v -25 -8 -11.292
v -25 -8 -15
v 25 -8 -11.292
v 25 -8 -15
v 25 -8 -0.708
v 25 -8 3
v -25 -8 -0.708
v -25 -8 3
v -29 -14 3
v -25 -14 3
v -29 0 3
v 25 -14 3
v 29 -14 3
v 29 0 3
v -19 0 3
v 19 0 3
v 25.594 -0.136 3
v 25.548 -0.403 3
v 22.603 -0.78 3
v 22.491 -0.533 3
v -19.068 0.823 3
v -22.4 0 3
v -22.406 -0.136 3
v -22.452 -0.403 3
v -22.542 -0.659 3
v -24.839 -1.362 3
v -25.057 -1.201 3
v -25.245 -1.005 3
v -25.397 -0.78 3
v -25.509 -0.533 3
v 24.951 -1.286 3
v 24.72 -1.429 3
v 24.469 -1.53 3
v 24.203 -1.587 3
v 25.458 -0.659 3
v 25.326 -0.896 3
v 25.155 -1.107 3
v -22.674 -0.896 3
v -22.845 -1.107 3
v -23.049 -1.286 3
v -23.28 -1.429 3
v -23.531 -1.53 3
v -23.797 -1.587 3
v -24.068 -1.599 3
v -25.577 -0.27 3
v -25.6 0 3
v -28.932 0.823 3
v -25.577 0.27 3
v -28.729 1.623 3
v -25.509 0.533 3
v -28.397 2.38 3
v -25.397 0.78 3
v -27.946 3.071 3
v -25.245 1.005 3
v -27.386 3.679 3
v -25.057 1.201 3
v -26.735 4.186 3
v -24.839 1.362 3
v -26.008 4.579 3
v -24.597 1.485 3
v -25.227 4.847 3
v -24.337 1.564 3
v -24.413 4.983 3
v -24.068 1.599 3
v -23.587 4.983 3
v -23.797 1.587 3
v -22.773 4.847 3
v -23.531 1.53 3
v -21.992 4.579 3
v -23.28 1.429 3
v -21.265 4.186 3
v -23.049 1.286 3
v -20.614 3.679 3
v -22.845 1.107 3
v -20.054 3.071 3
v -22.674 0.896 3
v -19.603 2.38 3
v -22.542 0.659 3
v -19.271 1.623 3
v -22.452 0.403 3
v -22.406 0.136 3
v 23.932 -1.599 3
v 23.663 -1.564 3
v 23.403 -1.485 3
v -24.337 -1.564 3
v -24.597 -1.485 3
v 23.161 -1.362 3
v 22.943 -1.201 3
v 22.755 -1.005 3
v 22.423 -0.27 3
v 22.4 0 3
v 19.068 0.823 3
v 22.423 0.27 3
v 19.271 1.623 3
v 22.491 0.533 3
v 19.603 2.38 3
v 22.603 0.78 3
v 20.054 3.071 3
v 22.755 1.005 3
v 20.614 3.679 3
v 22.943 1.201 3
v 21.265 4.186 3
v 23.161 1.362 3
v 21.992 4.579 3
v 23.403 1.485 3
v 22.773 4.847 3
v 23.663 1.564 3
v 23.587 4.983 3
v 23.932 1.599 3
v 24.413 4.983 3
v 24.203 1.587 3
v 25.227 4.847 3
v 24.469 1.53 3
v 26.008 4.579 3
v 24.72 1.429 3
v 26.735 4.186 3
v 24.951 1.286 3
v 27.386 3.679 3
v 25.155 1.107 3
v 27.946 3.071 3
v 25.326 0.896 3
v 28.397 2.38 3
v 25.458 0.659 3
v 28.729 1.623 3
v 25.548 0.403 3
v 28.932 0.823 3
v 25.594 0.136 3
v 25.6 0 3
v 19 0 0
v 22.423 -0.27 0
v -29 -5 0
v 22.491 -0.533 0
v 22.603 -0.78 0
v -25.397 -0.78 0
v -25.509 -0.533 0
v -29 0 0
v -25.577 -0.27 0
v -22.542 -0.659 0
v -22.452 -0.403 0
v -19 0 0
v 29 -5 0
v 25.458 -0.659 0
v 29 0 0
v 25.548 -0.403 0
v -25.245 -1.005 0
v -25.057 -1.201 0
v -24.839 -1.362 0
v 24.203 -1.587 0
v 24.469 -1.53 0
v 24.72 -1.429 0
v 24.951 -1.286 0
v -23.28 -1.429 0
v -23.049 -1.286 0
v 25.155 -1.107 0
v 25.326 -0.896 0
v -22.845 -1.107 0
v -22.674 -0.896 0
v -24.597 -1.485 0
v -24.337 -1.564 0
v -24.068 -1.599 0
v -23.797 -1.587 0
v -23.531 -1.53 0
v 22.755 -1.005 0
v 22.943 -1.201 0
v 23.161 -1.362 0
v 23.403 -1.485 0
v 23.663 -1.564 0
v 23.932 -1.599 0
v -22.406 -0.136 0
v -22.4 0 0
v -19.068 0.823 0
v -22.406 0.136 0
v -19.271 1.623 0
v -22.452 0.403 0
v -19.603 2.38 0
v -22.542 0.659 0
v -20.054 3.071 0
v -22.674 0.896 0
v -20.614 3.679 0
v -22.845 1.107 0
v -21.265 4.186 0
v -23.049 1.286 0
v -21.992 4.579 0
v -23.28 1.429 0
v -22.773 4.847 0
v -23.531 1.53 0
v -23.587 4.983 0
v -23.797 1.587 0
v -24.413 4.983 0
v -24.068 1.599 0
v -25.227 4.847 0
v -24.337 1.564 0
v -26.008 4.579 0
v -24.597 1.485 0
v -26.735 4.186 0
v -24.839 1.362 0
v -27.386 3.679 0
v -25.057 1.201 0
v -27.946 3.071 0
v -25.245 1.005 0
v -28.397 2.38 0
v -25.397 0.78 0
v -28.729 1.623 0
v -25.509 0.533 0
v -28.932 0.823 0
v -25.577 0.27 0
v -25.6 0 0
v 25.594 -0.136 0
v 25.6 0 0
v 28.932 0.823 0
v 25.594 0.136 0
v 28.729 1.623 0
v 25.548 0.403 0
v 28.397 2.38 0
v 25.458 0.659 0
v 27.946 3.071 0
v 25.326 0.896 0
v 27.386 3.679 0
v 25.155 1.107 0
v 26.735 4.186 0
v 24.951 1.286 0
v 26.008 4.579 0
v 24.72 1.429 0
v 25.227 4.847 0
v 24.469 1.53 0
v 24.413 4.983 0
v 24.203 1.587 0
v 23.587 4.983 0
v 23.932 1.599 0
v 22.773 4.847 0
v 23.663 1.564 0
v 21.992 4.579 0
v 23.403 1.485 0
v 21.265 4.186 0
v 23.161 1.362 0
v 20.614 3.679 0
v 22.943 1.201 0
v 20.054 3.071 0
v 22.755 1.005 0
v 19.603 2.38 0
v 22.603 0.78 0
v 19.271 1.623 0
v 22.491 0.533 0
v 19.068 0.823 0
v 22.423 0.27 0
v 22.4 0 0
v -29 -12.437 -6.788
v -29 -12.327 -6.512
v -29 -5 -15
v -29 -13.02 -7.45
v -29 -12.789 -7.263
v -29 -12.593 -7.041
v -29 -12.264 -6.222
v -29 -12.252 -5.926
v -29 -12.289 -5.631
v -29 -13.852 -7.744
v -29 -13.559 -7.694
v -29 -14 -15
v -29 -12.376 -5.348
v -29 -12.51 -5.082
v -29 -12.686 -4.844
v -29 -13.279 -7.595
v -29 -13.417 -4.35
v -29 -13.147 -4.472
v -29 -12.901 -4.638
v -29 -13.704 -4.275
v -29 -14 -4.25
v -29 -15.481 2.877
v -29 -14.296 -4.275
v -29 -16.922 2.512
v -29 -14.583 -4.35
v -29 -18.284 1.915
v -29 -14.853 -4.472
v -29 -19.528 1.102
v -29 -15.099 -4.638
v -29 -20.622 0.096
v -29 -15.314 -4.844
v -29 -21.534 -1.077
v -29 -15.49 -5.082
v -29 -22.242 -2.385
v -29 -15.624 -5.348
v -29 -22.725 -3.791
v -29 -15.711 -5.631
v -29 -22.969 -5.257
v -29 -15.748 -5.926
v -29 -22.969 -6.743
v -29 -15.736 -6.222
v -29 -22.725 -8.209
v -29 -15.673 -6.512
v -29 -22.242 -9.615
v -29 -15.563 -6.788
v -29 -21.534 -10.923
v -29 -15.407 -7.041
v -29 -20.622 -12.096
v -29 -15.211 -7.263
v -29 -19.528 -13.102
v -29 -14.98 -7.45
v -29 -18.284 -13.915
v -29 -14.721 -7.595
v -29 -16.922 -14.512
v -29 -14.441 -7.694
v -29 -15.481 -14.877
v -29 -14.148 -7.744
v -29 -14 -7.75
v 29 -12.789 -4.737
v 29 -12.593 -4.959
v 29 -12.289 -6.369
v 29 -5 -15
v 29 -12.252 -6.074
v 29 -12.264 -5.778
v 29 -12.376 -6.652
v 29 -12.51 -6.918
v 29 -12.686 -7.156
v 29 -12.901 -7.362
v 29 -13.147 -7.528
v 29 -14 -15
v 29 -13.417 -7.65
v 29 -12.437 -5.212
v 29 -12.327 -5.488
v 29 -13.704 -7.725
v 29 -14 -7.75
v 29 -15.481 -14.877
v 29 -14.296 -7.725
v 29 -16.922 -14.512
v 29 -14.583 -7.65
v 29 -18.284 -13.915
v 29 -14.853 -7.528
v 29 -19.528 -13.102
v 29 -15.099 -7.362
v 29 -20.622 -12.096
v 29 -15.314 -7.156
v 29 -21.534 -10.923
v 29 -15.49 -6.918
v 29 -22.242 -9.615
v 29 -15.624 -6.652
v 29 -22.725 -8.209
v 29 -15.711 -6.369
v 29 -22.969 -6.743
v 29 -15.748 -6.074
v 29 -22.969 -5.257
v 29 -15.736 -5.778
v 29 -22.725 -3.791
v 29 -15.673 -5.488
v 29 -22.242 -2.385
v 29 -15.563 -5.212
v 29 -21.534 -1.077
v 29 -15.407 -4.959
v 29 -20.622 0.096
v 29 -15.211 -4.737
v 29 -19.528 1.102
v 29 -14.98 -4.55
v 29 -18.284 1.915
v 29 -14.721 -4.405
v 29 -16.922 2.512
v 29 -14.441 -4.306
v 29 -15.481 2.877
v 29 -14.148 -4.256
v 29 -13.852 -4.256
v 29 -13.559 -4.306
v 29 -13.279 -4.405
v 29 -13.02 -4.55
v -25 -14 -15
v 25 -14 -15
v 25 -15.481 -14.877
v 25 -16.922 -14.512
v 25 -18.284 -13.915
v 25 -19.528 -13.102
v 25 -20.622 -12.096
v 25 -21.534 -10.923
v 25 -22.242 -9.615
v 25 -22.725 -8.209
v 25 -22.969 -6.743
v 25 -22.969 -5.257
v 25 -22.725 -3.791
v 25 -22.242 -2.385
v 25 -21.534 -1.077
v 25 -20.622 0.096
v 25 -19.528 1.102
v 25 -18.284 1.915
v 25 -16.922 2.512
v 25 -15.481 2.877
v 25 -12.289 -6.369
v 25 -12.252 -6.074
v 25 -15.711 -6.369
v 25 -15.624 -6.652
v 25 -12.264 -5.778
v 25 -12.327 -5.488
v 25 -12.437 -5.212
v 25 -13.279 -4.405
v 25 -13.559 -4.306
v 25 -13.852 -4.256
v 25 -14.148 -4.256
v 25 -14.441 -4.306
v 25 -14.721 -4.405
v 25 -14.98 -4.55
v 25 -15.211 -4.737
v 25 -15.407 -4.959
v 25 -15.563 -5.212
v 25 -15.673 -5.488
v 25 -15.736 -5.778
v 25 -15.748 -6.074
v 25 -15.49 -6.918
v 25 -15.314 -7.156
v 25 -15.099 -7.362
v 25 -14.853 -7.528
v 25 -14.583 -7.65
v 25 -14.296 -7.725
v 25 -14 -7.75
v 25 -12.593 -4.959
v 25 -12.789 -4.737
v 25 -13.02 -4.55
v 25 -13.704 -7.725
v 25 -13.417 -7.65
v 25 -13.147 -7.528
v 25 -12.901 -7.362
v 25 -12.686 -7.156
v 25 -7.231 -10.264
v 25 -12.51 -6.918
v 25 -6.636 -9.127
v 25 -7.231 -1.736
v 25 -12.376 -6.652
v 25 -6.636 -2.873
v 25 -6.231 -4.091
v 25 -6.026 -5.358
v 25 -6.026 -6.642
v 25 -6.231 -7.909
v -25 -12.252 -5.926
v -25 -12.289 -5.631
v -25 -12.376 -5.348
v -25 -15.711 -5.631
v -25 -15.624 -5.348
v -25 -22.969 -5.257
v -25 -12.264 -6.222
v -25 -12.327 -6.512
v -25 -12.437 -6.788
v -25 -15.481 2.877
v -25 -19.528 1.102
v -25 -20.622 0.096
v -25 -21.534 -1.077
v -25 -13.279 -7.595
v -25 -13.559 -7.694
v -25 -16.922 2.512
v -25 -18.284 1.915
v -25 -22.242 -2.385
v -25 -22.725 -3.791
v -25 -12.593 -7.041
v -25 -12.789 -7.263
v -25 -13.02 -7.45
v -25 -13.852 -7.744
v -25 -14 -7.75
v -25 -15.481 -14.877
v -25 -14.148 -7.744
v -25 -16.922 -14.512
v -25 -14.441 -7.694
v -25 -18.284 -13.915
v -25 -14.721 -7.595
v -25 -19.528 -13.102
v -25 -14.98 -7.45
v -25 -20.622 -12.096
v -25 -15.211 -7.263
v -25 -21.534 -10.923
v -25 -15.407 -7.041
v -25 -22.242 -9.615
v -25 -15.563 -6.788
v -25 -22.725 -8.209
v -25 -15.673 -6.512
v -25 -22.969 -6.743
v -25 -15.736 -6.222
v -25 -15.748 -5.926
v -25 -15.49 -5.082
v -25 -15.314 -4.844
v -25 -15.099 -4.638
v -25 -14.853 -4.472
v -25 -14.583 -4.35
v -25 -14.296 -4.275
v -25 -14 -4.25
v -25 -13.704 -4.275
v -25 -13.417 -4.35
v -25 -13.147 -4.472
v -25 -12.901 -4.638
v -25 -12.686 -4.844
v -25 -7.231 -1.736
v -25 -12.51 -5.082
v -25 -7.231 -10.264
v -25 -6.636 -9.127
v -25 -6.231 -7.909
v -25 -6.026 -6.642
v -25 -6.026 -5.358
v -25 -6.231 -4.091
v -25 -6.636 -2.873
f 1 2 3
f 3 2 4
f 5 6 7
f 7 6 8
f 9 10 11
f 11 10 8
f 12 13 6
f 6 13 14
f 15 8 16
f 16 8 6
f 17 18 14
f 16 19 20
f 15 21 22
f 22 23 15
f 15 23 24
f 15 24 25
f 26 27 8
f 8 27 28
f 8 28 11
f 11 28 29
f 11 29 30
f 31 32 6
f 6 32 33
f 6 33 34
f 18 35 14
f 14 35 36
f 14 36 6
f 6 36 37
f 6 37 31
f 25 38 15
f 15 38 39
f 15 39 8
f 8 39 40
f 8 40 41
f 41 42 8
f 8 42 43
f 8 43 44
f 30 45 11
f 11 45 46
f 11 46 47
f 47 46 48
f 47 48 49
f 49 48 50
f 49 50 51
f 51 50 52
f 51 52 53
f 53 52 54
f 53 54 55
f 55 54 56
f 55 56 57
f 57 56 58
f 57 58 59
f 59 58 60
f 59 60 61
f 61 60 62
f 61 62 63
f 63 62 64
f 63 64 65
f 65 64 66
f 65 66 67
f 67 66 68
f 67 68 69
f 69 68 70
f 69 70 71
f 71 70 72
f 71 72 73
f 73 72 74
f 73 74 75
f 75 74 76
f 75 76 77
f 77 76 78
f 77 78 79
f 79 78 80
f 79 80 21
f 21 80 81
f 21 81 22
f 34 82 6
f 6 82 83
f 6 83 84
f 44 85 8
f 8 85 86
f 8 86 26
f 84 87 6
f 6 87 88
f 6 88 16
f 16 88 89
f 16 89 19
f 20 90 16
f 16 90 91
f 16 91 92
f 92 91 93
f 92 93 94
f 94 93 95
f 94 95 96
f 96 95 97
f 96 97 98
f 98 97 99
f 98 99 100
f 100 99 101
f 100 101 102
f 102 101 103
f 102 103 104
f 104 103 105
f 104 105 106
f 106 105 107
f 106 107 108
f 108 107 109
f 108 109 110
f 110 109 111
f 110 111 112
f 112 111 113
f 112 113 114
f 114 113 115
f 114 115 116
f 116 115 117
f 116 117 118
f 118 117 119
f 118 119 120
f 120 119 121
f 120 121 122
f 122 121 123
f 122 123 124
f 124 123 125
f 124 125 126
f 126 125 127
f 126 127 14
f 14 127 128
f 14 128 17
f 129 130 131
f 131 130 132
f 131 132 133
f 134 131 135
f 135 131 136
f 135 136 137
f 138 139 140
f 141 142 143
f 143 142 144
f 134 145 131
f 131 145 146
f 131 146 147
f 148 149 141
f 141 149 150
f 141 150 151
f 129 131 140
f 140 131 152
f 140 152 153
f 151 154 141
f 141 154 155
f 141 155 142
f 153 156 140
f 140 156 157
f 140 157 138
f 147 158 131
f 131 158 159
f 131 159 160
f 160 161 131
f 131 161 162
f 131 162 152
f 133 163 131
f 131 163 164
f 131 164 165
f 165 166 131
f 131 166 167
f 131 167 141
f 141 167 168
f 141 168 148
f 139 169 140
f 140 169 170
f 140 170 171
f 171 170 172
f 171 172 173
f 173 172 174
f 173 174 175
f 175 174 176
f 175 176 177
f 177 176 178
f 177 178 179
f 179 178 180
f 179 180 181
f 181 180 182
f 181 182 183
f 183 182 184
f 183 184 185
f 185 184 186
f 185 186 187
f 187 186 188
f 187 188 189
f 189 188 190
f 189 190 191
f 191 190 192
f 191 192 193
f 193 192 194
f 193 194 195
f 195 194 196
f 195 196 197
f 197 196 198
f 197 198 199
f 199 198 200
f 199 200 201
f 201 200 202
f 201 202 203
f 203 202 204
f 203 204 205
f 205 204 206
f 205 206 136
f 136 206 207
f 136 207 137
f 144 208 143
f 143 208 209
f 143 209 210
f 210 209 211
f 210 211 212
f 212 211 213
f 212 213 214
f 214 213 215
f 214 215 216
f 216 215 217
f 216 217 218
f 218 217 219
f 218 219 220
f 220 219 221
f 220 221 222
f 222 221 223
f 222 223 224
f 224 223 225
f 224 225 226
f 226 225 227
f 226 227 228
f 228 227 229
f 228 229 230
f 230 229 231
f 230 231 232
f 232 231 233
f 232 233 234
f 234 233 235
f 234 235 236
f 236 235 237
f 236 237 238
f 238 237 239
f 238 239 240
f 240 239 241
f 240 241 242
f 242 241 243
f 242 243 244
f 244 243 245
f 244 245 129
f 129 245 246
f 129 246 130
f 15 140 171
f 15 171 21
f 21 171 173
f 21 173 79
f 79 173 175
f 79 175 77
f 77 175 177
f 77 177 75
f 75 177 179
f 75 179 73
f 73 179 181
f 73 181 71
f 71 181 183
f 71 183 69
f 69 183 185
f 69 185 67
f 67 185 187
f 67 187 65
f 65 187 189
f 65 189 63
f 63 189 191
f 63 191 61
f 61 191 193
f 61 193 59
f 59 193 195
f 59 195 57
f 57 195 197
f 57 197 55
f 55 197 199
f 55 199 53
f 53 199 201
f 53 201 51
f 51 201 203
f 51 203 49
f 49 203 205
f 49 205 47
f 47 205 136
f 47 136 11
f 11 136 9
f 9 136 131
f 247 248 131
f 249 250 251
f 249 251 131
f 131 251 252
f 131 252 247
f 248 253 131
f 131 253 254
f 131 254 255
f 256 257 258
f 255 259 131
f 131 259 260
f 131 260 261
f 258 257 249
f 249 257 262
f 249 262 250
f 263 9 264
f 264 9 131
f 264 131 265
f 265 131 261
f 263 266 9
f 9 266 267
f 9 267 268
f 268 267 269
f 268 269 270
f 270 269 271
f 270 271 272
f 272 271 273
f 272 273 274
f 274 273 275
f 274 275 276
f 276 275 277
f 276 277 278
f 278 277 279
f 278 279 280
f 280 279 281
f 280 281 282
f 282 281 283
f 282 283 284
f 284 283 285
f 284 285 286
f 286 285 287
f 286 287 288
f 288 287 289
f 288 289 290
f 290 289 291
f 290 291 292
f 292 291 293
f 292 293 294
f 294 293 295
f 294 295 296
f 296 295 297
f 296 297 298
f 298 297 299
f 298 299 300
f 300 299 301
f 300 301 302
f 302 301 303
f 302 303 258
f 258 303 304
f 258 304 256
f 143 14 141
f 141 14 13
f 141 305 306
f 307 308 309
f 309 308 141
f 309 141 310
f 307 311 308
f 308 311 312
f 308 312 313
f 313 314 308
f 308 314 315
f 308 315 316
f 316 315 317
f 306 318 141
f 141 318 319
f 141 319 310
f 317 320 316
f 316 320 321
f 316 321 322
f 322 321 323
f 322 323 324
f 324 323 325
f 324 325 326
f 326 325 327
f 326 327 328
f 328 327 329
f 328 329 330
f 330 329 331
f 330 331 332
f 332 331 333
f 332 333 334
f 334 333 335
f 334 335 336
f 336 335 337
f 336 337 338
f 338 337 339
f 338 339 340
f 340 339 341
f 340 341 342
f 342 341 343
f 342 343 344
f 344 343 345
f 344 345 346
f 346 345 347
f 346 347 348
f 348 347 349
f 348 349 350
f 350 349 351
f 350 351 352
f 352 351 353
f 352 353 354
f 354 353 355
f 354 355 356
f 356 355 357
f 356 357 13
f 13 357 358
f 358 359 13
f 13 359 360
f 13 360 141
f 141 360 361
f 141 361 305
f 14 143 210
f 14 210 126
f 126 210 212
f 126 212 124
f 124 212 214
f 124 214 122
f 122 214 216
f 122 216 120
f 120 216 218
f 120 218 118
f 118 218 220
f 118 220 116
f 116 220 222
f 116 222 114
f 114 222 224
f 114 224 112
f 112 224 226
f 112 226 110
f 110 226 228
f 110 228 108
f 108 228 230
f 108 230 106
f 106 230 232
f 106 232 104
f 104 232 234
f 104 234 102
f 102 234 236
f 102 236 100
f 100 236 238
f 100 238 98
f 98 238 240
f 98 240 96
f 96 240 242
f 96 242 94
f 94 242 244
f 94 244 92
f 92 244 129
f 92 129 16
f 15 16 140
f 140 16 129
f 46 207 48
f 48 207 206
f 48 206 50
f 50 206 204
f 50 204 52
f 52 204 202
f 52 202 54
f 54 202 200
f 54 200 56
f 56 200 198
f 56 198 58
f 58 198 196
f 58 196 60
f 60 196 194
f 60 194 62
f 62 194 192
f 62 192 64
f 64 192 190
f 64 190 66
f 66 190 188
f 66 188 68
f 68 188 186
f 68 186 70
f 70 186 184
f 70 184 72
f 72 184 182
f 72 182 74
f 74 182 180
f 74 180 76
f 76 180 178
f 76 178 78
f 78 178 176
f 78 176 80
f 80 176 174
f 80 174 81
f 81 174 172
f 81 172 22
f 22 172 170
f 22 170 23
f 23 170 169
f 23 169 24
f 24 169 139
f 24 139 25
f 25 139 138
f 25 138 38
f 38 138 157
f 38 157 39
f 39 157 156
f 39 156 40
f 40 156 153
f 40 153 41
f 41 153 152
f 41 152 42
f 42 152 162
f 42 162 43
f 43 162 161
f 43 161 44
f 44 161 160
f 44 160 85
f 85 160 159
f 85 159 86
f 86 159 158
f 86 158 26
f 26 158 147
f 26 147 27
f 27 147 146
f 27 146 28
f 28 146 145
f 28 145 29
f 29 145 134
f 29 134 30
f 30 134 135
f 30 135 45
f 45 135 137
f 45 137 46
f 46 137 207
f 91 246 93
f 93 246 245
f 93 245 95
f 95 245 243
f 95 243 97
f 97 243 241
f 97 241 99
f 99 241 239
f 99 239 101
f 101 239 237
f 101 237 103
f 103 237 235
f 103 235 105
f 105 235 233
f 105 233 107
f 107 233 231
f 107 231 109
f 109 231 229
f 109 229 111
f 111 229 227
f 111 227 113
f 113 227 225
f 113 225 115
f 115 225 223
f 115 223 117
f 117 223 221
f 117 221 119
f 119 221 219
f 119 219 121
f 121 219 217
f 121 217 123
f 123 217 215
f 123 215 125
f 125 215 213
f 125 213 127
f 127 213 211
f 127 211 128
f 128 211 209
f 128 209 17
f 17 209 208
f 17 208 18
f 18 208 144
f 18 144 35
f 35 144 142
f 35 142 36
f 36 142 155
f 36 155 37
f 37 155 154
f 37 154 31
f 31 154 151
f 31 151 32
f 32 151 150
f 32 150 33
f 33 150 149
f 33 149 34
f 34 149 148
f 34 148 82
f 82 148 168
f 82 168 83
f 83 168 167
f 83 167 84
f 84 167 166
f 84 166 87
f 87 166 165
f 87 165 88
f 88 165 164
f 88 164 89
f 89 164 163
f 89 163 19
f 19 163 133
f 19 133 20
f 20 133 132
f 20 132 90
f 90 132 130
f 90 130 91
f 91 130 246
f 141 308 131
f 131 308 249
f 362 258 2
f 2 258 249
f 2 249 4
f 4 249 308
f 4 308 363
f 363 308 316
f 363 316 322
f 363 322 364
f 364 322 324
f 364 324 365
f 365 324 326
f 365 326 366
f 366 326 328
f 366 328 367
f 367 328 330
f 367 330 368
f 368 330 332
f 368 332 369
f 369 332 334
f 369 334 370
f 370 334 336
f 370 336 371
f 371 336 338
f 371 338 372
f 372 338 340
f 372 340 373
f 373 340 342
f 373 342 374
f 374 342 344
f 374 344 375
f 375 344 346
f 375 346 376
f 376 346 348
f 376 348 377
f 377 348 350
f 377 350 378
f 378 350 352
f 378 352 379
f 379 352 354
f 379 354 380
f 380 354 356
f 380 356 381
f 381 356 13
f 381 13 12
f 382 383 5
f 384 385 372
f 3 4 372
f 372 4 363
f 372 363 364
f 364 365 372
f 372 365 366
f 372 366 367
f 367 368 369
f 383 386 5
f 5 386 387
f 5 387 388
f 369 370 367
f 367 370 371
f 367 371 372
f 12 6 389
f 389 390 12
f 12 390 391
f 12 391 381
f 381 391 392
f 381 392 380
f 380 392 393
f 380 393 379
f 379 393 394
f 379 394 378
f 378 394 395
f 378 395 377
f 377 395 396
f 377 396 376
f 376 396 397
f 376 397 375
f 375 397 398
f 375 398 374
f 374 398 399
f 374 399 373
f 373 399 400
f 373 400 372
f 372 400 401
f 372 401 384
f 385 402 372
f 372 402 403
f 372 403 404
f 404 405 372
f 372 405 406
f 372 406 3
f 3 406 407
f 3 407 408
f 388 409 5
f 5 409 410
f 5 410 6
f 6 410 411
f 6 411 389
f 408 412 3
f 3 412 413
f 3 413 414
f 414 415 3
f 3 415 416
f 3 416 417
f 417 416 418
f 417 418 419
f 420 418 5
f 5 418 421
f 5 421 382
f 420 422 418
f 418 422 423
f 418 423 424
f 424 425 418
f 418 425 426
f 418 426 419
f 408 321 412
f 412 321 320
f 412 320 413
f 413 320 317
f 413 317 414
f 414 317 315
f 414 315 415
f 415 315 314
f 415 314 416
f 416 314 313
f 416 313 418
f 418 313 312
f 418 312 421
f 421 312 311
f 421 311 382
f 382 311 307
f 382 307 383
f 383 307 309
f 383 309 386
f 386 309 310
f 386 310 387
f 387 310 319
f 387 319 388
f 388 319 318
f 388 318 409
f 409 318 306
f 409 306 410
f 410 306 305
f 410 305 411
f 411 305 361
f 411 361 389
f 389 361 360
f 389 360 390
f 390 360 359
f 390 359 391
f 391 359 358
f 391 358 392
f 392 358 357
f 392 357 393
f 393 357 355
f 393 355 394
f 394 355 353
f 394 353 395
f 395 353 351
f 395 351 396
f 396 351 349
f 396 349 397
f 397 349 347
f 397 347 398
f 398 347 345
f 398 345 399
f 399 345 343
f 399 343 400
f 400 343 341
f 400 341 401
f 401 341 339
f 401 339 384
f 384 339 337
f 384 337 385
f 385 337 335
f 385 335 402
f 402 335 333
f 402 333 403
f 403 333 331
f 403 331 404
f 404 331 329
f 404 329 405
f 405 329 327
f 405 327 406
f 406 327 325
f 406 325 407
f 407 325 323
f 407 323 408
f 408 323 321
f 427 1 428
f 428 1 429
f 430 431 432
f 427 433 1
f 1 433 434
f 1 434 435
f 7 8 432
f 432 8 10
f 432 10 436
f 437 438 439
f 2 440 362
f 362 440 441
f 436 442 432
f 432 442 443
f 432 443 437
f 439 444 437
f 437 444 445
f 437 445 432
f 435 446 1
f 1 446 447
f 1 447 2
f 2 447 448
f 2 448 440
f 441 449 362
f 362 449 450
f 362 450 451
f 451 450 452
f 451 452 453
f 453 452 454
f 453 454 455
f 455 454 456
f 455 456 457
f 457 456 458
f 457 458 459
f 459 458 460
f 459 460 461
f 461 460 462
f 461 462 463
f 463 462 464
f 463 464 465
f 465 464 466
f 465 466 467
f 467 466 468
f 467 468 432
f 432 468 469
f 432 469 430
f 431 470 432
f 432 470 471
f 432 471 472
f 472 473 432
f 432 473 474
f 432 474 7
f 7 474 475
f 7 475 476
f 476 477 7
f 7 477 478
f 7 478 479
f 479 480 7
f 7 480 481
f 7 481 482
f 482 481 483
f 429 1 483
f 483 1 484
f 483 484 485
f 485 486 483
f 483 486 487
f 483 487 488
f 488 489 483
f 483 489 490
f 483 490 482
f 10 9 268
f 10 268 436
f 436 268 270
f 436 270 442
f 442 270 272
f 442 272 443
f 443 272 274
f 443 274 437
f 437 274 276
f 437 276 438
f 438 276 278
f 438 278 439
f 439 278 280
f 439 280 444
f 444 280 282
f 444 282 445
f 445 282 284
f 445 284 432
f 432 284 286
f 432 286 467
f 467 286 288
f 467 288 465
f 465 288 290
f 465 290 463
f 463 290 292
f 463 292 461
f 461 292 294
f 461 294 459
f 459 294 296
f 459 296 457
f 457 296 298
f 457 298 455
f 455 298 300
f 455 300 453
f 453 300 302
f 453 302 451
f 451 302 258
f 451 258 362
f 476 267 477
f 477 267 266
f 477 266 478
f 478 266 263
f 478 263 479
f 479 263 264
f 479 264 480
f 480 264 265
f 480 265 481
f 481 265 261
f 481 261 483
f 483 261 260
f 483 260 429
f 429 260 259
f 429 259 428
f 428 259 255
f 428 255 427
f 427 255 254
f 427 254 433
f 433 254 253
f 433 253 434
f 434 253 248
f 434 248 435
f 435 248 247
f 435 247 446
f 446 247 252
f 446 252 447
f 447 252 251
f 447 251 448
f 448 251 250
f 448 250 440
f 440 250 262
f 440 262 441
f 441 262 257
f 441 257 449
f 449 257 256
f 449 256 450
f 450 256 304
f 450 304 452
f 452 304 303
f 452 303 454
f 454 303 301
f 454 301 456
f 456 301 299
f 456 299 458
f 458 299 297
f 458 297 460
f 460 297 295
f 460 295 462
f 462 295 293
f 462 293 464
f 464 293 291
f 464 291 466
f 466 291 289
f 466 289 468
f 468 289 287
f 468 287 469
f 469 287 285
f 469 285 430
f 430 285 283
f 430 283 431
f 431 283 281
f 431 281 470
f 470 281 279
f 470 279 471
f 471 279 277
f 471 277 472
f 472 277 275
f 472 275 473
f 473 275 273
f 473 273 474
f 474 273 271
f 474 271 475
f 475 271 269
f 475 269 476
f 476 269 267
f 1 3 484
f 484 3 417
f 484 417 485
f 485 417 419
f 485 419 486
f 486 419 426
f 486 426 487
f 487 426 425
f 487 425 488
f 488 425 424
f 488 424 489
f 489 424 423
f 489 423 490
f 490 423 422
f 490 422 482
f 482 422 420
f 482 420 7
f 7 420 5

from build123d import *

# Parameters (mm, degrees)
SKETCH_3_R          = 1.6
EXTRUDE_2_DEPTH     = 3
SKETCH_4_W          = 58
SKETCH_4_H          = 3
EXTRUDE_3_DEPTH     = 18
SKETCH_5_R          = 1.75
EXTRUDE_4_DEPTH     = 4
SKETCH_7_R          = 8
CUT_EXTRUDE_2_DEPTH = 50


with BuildPart() as part:
    # 草图3 → 凸台-拉伸2 (new body)
    with BuildSketch(Plane.XY):
        with BuildLine():
            Line((-29, 0), (-29, -5))
            Line((-29, -5), (29, -5))
            Line((29, -5), (29, 0))
            ThreePointArc((29, 0), (24, 5), (19, 0))
            Line((19, 0), (-19, 0))
            ThreePointArc((-19, 0), (-24, 5), (-29, 0))
        make_face()
        with Locations((-24, 0)):
            Circle(SKETCH_3_R, mode=Mode.SUBTRACT)
        with Locations((24, 0)):
            Circle(SKETCH_3_R, mode=Mode.SUBTRACT)
    extrude(amount=EXTRUDE_2_DEPTH)

    # 草图4 → 凸台-拉伸3 (add)
    with BuildSketch(Plane.XY.offset(3)):
        with Locations((0, -6.5)):
            Rectangle(SKETCH_4_W, SKETCH_4_H)
    extrude(amount=-EXTRUDE_3_DEPTH)

    # 草图5 → 凸台-拉伸4 (add)
    with BuildSketch(Plane(origin=(29, 0, 0), x_dir=(0, 0, -1), z_dir=(1, 0, 0))):
        with BuildLine():
            Line((-3, -8), (-3, -14))
            ThreePointArc((-3, -14), (6, -23), (15, -14))
            Line((15, -14), (15, -8))
            Line((15, -8), (-3, -8))
        make_face()
        with Locations((6, -14)):
            Circle(SKETCH_5_R, mode=Mode.SUBTRACT)
    extrude_4 = extrude(amount=-EXTRUDE_4_DEPTH)

    # 镜向1: 凸台-拉伸4 across plane
    add(extrude_4.mirror(Plane(origin=(0, 0, 0), x_dir=(0, 0, 1), z_dir=(1, 0, 0))))

    # 草图7 → 切除-拉伸2 (cut)
    with BuildSketch(Plane.ZY.offset(-25)):
        with Locations((-6, -14)):
            Circle(SKETCH_7_R)
    extrude(amount=CUT_EXTRUDE_2_DEPTH, mode=Mode.SUBTRACT)


solid = part.part
